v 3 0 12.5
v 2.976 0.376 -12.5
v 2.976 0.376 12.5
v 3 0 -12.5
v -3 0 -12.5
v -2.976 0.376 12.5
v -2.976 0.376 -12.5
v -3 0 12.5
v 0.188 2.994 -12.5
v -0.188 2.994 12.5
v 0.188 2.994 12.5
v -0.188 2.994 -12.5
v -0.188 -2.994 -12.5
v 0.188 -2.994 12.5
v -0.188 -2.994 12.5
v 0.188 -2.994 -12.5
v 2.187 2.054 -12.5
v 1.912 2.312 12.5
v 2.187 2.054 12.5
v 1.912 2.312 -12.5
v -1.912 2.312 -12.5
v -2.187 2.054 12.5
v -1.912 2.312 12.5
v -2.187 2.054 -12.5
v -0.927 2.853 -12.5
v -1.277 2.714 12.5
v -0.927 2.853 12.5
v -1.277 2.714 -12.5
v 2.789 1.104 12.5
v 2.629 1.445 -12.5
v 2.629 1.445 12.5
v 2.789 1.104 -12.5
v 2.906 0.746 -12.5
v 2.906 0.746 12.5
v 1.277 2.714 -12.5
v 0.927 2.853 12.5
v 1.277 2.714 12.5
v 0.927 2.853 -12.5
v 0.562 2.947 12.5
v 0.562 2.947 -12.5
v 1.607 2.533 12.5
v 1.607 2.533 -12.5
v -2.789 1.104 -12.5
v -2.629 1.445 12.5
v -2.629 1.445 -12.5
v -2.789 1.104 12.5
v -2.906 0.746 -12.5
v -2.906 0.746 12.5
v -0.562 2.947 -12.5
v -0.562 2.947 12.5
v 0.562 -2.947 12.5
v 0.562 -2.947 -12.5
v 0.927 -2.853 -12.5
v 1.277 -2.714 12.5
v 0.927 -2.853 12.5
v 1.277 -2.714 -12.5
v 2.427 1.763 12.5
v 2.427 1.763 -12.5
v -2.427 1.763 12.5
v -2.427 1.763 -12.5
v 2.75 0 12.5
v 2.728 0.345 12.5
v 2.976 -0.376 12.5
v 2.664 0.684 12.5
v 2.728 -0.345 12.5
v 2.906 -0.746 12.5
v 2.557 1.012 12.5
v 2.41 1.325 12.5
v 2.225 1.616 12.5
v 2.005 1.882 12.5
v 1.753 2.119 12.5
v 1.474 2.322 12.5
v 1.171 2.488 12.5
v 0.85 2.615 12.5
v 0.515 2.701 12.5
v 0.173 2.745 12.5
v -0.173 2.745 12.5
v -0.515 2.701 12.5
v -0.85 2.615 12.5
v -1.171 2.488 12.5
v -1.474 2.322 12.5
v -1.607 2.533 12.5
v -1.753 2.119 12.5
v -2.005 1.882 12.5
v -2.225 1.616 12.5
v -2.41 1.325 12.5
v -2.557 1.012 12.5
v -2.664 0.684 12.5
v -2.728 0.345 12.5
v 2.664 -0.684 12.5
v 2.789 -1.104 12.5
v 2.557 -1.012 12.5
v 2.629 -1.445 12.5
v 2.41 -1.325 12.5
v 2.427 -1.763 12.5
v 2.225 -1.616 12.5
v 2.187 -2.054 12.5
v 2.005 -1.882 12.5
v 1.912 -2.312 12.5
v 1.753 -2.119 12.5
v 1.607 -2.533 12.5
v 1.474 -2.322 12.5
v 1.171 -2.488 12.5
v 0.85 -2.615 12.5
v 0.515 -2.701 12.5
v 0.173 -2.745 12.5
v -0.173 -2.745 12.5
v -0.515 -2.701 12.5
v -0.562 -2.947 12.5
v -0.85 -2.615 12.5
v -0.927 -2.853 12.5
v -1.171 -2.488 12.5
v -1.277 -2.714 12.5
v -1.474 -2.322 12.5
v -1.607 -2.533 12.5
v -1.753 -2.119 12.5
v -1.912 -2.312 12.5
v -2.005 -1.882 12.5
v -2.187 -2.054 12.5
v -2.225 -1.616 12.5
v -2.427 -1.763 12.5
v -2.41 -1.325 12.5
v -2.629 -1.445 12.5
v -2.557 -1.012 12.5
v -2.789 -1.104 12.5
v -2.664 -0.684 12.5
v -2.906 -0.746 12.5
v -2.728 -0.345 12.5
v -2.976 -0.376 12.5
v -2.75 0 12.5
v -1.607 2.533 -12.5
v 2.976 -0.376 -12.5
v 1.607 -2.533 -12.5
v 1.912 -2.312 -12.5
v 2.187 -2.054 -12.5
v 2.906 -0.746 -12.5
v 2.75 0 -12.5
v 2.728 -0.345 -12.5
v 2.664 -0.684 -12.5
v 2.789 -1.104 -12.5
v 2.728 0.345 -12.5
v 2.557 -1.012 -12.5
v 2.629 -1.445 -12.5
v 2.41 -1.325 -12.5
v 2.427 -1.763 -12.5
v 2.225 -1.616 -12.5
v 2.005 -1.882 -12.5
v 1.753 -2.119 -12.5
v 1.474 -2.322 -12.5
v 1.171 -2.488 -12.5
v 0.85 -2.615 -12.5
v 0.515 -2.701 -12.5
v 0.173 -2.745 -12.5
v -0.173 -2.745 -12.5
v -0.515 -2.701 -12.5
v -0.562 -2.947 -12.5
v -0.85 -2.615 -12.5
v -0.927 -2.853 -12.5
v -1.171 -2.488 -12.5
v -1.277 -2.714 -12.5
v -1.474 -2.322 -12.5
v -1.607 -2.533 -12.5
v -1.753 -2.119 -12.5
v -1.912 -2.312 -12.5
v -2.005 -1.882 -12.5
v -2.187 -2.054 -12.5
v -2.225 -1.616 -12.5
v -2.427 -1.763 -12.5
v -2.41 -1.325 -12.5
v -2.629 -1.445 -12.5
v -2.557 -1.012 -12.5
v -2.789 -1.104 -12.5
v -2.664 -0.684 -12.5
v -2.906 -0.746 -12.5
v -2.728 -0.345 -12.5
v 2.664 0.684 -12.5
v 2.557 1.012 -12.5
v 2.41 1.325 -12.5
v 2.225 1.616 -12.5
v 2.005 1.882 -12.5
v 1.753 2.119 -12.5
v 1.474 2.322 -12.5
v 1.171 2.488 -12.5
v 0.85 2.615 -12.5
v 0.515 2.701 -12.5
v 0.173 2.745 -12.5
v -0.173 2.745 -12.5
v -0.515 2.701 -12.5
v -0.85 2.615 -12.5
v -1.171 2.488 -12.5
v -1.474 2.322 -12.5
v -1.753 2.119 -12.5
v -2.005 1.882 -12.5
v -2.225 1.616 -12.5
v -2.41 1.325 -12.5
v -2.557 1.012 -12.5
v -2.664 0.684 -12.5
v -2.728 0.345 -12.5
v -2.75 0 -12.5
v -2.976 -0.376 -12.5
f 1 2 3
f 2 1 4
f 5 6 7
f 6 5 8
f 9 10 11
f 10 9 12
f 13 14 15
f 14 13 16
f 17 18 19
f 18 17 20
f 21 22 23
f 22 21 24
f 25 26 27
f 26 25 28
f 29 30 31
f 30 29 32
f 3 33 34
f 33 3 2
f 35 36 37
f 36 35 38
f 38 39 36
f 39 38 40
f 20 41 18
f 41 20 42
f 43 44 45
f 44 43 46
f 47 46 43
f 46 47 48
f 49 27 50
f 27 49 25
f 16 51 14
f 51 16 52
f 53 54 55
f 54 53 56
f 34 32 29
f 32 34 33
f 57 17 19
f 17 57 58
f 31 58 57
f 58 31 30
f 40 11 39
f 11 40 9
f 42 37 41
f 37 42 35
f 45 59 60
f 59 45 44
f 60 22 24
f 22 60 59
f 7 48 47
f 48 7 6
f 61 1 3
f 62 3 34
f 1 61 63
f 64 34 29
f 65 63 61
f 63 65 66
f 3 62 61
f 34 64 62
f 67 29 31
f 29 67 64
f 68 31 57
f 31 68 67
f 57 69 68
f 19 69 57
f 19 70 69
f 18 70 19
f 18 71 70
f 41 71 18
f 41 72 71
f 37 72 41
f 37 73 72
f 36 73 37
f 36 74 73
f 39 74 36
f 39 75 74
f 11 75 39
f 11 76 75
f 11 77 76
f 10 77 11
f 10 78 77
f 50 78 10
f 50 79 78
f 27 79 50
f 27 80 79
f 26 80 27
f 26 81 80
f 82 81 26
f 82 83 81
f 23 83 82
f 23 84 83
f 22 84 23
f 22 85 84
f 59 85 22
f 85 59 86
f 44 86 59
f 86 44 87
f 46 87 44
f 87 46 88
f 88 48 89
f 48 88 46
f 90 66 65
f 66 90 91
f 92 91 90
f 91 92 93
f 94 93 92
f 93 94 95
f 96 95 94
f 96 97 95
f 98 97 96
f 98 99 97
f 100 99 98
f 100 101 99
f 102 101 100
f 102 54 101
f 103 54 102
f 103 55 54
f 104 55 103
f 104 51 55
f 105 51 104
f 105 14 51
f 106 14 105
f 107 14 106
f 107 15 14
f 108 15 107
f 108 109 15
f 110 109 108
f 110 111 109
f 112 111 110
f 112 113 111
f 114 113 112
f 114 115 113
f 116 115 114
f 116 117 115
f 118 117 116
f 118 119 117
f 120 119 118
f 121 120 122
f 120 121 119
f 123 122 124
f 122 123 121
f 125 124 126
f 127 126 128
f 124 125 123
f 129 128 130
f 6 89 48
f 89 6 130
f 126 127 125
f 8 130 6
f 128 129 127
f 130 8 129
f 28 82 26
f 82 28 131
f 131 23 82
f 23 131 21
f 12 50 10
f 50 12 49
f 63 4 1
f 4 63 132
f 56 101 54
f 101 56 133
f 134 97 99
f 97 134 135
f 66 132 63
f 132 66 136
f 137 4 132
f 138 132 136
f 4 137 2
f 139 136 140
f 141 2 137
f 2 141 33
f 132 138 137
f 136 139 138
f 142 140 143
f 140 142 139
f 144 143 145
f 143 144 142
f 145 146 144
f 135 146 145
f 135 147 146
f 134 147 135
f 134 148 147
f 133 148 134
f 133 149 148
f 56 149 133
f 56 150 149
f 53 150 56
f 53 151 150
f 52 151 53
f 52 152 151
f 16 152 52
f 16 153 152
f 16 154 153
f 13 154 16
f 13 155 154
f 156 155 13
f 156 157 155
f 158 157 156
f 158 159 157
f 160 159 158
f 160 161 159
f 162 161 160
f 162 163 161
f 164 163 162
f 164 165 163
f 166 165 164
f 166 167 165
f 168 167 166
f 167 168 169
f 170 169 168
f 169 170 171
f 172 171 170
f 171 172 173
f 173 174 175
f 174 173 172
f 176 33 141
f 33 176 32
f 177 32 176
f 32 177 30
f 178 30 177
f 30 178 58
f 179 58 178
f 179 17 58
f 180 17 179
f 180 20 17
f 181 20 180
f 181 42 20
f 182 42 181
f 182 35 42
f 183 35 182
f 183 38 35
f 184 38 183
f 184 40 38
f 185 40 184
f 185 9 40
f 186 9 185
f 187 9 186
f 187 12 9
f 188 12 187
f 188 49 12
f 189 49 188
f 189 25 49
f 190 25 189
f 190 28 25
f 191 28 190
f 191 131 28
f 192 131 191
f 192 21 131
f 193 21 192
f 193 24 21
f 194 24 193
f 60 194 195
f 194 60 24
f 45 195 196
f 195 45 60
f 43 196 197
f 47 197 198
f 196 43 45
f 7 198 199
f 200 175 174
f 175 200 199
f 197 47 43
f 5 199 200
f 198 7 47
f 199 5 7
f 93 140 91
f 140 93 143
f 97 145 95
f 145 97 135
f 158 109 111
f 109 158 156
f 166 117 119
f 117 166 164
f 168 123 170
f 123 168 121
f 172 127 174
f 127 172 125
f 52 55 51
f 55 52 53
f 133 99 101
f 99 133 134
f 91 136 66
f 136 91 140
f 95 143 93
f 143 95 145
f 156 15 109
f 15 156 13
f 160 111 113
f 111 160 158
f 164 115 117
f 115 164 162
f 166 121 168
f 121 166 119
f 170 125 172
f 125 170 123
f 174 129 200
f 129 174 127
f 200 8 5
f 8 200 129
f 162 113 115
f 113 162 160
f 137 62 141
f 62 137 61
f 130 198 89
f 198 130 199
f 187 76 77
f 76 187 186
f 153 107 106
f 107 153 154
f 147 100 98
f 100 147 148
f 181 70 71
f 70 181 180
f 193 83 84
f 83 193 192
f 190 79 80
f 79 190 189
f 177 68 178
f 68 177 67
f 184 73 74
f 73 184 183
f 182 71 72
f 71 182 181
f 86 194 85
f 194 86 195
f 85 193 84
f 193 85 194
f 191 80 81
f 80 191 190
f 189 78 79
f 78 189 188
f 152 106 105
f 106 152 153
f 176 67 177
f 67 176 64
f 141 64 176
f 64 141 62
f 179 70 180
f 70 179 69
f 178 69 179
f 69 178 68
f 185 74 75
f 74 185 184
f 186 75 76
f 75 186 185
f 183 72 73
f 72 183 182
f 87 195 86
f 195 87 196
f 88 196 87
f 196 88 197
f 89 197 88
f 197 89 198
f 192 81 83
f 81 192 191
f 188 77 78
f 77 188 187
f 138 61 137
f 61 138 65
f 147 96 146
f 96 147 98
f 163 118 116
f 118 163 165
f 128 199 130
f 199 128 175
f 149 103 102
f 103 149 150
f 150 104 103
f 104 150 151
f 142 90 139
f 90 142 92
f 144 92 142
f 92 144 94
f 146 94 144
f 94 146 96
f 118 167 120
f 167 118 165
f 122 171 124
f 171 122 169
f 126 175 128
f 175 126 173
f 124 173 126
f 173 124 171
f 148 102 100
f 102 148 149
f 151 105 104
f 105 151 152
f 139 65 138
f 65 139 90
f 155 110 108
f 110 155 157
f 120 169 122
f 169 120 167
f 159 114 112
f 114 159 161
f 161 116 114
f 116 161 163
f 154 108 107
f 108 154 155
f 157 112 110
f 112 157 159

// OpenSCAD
$fn = 50;


difference() {
	union() {
		translate(v = [0, 0, -12.5000000000]) {
			cylinder(h = 25, r = 3.0000000000);
		}
	}
	union() {
		translate(v = [0, 0, -100.0000000000]) {
			cylinder(h = 200, r = 2.7500000000);
		}
	}
}
